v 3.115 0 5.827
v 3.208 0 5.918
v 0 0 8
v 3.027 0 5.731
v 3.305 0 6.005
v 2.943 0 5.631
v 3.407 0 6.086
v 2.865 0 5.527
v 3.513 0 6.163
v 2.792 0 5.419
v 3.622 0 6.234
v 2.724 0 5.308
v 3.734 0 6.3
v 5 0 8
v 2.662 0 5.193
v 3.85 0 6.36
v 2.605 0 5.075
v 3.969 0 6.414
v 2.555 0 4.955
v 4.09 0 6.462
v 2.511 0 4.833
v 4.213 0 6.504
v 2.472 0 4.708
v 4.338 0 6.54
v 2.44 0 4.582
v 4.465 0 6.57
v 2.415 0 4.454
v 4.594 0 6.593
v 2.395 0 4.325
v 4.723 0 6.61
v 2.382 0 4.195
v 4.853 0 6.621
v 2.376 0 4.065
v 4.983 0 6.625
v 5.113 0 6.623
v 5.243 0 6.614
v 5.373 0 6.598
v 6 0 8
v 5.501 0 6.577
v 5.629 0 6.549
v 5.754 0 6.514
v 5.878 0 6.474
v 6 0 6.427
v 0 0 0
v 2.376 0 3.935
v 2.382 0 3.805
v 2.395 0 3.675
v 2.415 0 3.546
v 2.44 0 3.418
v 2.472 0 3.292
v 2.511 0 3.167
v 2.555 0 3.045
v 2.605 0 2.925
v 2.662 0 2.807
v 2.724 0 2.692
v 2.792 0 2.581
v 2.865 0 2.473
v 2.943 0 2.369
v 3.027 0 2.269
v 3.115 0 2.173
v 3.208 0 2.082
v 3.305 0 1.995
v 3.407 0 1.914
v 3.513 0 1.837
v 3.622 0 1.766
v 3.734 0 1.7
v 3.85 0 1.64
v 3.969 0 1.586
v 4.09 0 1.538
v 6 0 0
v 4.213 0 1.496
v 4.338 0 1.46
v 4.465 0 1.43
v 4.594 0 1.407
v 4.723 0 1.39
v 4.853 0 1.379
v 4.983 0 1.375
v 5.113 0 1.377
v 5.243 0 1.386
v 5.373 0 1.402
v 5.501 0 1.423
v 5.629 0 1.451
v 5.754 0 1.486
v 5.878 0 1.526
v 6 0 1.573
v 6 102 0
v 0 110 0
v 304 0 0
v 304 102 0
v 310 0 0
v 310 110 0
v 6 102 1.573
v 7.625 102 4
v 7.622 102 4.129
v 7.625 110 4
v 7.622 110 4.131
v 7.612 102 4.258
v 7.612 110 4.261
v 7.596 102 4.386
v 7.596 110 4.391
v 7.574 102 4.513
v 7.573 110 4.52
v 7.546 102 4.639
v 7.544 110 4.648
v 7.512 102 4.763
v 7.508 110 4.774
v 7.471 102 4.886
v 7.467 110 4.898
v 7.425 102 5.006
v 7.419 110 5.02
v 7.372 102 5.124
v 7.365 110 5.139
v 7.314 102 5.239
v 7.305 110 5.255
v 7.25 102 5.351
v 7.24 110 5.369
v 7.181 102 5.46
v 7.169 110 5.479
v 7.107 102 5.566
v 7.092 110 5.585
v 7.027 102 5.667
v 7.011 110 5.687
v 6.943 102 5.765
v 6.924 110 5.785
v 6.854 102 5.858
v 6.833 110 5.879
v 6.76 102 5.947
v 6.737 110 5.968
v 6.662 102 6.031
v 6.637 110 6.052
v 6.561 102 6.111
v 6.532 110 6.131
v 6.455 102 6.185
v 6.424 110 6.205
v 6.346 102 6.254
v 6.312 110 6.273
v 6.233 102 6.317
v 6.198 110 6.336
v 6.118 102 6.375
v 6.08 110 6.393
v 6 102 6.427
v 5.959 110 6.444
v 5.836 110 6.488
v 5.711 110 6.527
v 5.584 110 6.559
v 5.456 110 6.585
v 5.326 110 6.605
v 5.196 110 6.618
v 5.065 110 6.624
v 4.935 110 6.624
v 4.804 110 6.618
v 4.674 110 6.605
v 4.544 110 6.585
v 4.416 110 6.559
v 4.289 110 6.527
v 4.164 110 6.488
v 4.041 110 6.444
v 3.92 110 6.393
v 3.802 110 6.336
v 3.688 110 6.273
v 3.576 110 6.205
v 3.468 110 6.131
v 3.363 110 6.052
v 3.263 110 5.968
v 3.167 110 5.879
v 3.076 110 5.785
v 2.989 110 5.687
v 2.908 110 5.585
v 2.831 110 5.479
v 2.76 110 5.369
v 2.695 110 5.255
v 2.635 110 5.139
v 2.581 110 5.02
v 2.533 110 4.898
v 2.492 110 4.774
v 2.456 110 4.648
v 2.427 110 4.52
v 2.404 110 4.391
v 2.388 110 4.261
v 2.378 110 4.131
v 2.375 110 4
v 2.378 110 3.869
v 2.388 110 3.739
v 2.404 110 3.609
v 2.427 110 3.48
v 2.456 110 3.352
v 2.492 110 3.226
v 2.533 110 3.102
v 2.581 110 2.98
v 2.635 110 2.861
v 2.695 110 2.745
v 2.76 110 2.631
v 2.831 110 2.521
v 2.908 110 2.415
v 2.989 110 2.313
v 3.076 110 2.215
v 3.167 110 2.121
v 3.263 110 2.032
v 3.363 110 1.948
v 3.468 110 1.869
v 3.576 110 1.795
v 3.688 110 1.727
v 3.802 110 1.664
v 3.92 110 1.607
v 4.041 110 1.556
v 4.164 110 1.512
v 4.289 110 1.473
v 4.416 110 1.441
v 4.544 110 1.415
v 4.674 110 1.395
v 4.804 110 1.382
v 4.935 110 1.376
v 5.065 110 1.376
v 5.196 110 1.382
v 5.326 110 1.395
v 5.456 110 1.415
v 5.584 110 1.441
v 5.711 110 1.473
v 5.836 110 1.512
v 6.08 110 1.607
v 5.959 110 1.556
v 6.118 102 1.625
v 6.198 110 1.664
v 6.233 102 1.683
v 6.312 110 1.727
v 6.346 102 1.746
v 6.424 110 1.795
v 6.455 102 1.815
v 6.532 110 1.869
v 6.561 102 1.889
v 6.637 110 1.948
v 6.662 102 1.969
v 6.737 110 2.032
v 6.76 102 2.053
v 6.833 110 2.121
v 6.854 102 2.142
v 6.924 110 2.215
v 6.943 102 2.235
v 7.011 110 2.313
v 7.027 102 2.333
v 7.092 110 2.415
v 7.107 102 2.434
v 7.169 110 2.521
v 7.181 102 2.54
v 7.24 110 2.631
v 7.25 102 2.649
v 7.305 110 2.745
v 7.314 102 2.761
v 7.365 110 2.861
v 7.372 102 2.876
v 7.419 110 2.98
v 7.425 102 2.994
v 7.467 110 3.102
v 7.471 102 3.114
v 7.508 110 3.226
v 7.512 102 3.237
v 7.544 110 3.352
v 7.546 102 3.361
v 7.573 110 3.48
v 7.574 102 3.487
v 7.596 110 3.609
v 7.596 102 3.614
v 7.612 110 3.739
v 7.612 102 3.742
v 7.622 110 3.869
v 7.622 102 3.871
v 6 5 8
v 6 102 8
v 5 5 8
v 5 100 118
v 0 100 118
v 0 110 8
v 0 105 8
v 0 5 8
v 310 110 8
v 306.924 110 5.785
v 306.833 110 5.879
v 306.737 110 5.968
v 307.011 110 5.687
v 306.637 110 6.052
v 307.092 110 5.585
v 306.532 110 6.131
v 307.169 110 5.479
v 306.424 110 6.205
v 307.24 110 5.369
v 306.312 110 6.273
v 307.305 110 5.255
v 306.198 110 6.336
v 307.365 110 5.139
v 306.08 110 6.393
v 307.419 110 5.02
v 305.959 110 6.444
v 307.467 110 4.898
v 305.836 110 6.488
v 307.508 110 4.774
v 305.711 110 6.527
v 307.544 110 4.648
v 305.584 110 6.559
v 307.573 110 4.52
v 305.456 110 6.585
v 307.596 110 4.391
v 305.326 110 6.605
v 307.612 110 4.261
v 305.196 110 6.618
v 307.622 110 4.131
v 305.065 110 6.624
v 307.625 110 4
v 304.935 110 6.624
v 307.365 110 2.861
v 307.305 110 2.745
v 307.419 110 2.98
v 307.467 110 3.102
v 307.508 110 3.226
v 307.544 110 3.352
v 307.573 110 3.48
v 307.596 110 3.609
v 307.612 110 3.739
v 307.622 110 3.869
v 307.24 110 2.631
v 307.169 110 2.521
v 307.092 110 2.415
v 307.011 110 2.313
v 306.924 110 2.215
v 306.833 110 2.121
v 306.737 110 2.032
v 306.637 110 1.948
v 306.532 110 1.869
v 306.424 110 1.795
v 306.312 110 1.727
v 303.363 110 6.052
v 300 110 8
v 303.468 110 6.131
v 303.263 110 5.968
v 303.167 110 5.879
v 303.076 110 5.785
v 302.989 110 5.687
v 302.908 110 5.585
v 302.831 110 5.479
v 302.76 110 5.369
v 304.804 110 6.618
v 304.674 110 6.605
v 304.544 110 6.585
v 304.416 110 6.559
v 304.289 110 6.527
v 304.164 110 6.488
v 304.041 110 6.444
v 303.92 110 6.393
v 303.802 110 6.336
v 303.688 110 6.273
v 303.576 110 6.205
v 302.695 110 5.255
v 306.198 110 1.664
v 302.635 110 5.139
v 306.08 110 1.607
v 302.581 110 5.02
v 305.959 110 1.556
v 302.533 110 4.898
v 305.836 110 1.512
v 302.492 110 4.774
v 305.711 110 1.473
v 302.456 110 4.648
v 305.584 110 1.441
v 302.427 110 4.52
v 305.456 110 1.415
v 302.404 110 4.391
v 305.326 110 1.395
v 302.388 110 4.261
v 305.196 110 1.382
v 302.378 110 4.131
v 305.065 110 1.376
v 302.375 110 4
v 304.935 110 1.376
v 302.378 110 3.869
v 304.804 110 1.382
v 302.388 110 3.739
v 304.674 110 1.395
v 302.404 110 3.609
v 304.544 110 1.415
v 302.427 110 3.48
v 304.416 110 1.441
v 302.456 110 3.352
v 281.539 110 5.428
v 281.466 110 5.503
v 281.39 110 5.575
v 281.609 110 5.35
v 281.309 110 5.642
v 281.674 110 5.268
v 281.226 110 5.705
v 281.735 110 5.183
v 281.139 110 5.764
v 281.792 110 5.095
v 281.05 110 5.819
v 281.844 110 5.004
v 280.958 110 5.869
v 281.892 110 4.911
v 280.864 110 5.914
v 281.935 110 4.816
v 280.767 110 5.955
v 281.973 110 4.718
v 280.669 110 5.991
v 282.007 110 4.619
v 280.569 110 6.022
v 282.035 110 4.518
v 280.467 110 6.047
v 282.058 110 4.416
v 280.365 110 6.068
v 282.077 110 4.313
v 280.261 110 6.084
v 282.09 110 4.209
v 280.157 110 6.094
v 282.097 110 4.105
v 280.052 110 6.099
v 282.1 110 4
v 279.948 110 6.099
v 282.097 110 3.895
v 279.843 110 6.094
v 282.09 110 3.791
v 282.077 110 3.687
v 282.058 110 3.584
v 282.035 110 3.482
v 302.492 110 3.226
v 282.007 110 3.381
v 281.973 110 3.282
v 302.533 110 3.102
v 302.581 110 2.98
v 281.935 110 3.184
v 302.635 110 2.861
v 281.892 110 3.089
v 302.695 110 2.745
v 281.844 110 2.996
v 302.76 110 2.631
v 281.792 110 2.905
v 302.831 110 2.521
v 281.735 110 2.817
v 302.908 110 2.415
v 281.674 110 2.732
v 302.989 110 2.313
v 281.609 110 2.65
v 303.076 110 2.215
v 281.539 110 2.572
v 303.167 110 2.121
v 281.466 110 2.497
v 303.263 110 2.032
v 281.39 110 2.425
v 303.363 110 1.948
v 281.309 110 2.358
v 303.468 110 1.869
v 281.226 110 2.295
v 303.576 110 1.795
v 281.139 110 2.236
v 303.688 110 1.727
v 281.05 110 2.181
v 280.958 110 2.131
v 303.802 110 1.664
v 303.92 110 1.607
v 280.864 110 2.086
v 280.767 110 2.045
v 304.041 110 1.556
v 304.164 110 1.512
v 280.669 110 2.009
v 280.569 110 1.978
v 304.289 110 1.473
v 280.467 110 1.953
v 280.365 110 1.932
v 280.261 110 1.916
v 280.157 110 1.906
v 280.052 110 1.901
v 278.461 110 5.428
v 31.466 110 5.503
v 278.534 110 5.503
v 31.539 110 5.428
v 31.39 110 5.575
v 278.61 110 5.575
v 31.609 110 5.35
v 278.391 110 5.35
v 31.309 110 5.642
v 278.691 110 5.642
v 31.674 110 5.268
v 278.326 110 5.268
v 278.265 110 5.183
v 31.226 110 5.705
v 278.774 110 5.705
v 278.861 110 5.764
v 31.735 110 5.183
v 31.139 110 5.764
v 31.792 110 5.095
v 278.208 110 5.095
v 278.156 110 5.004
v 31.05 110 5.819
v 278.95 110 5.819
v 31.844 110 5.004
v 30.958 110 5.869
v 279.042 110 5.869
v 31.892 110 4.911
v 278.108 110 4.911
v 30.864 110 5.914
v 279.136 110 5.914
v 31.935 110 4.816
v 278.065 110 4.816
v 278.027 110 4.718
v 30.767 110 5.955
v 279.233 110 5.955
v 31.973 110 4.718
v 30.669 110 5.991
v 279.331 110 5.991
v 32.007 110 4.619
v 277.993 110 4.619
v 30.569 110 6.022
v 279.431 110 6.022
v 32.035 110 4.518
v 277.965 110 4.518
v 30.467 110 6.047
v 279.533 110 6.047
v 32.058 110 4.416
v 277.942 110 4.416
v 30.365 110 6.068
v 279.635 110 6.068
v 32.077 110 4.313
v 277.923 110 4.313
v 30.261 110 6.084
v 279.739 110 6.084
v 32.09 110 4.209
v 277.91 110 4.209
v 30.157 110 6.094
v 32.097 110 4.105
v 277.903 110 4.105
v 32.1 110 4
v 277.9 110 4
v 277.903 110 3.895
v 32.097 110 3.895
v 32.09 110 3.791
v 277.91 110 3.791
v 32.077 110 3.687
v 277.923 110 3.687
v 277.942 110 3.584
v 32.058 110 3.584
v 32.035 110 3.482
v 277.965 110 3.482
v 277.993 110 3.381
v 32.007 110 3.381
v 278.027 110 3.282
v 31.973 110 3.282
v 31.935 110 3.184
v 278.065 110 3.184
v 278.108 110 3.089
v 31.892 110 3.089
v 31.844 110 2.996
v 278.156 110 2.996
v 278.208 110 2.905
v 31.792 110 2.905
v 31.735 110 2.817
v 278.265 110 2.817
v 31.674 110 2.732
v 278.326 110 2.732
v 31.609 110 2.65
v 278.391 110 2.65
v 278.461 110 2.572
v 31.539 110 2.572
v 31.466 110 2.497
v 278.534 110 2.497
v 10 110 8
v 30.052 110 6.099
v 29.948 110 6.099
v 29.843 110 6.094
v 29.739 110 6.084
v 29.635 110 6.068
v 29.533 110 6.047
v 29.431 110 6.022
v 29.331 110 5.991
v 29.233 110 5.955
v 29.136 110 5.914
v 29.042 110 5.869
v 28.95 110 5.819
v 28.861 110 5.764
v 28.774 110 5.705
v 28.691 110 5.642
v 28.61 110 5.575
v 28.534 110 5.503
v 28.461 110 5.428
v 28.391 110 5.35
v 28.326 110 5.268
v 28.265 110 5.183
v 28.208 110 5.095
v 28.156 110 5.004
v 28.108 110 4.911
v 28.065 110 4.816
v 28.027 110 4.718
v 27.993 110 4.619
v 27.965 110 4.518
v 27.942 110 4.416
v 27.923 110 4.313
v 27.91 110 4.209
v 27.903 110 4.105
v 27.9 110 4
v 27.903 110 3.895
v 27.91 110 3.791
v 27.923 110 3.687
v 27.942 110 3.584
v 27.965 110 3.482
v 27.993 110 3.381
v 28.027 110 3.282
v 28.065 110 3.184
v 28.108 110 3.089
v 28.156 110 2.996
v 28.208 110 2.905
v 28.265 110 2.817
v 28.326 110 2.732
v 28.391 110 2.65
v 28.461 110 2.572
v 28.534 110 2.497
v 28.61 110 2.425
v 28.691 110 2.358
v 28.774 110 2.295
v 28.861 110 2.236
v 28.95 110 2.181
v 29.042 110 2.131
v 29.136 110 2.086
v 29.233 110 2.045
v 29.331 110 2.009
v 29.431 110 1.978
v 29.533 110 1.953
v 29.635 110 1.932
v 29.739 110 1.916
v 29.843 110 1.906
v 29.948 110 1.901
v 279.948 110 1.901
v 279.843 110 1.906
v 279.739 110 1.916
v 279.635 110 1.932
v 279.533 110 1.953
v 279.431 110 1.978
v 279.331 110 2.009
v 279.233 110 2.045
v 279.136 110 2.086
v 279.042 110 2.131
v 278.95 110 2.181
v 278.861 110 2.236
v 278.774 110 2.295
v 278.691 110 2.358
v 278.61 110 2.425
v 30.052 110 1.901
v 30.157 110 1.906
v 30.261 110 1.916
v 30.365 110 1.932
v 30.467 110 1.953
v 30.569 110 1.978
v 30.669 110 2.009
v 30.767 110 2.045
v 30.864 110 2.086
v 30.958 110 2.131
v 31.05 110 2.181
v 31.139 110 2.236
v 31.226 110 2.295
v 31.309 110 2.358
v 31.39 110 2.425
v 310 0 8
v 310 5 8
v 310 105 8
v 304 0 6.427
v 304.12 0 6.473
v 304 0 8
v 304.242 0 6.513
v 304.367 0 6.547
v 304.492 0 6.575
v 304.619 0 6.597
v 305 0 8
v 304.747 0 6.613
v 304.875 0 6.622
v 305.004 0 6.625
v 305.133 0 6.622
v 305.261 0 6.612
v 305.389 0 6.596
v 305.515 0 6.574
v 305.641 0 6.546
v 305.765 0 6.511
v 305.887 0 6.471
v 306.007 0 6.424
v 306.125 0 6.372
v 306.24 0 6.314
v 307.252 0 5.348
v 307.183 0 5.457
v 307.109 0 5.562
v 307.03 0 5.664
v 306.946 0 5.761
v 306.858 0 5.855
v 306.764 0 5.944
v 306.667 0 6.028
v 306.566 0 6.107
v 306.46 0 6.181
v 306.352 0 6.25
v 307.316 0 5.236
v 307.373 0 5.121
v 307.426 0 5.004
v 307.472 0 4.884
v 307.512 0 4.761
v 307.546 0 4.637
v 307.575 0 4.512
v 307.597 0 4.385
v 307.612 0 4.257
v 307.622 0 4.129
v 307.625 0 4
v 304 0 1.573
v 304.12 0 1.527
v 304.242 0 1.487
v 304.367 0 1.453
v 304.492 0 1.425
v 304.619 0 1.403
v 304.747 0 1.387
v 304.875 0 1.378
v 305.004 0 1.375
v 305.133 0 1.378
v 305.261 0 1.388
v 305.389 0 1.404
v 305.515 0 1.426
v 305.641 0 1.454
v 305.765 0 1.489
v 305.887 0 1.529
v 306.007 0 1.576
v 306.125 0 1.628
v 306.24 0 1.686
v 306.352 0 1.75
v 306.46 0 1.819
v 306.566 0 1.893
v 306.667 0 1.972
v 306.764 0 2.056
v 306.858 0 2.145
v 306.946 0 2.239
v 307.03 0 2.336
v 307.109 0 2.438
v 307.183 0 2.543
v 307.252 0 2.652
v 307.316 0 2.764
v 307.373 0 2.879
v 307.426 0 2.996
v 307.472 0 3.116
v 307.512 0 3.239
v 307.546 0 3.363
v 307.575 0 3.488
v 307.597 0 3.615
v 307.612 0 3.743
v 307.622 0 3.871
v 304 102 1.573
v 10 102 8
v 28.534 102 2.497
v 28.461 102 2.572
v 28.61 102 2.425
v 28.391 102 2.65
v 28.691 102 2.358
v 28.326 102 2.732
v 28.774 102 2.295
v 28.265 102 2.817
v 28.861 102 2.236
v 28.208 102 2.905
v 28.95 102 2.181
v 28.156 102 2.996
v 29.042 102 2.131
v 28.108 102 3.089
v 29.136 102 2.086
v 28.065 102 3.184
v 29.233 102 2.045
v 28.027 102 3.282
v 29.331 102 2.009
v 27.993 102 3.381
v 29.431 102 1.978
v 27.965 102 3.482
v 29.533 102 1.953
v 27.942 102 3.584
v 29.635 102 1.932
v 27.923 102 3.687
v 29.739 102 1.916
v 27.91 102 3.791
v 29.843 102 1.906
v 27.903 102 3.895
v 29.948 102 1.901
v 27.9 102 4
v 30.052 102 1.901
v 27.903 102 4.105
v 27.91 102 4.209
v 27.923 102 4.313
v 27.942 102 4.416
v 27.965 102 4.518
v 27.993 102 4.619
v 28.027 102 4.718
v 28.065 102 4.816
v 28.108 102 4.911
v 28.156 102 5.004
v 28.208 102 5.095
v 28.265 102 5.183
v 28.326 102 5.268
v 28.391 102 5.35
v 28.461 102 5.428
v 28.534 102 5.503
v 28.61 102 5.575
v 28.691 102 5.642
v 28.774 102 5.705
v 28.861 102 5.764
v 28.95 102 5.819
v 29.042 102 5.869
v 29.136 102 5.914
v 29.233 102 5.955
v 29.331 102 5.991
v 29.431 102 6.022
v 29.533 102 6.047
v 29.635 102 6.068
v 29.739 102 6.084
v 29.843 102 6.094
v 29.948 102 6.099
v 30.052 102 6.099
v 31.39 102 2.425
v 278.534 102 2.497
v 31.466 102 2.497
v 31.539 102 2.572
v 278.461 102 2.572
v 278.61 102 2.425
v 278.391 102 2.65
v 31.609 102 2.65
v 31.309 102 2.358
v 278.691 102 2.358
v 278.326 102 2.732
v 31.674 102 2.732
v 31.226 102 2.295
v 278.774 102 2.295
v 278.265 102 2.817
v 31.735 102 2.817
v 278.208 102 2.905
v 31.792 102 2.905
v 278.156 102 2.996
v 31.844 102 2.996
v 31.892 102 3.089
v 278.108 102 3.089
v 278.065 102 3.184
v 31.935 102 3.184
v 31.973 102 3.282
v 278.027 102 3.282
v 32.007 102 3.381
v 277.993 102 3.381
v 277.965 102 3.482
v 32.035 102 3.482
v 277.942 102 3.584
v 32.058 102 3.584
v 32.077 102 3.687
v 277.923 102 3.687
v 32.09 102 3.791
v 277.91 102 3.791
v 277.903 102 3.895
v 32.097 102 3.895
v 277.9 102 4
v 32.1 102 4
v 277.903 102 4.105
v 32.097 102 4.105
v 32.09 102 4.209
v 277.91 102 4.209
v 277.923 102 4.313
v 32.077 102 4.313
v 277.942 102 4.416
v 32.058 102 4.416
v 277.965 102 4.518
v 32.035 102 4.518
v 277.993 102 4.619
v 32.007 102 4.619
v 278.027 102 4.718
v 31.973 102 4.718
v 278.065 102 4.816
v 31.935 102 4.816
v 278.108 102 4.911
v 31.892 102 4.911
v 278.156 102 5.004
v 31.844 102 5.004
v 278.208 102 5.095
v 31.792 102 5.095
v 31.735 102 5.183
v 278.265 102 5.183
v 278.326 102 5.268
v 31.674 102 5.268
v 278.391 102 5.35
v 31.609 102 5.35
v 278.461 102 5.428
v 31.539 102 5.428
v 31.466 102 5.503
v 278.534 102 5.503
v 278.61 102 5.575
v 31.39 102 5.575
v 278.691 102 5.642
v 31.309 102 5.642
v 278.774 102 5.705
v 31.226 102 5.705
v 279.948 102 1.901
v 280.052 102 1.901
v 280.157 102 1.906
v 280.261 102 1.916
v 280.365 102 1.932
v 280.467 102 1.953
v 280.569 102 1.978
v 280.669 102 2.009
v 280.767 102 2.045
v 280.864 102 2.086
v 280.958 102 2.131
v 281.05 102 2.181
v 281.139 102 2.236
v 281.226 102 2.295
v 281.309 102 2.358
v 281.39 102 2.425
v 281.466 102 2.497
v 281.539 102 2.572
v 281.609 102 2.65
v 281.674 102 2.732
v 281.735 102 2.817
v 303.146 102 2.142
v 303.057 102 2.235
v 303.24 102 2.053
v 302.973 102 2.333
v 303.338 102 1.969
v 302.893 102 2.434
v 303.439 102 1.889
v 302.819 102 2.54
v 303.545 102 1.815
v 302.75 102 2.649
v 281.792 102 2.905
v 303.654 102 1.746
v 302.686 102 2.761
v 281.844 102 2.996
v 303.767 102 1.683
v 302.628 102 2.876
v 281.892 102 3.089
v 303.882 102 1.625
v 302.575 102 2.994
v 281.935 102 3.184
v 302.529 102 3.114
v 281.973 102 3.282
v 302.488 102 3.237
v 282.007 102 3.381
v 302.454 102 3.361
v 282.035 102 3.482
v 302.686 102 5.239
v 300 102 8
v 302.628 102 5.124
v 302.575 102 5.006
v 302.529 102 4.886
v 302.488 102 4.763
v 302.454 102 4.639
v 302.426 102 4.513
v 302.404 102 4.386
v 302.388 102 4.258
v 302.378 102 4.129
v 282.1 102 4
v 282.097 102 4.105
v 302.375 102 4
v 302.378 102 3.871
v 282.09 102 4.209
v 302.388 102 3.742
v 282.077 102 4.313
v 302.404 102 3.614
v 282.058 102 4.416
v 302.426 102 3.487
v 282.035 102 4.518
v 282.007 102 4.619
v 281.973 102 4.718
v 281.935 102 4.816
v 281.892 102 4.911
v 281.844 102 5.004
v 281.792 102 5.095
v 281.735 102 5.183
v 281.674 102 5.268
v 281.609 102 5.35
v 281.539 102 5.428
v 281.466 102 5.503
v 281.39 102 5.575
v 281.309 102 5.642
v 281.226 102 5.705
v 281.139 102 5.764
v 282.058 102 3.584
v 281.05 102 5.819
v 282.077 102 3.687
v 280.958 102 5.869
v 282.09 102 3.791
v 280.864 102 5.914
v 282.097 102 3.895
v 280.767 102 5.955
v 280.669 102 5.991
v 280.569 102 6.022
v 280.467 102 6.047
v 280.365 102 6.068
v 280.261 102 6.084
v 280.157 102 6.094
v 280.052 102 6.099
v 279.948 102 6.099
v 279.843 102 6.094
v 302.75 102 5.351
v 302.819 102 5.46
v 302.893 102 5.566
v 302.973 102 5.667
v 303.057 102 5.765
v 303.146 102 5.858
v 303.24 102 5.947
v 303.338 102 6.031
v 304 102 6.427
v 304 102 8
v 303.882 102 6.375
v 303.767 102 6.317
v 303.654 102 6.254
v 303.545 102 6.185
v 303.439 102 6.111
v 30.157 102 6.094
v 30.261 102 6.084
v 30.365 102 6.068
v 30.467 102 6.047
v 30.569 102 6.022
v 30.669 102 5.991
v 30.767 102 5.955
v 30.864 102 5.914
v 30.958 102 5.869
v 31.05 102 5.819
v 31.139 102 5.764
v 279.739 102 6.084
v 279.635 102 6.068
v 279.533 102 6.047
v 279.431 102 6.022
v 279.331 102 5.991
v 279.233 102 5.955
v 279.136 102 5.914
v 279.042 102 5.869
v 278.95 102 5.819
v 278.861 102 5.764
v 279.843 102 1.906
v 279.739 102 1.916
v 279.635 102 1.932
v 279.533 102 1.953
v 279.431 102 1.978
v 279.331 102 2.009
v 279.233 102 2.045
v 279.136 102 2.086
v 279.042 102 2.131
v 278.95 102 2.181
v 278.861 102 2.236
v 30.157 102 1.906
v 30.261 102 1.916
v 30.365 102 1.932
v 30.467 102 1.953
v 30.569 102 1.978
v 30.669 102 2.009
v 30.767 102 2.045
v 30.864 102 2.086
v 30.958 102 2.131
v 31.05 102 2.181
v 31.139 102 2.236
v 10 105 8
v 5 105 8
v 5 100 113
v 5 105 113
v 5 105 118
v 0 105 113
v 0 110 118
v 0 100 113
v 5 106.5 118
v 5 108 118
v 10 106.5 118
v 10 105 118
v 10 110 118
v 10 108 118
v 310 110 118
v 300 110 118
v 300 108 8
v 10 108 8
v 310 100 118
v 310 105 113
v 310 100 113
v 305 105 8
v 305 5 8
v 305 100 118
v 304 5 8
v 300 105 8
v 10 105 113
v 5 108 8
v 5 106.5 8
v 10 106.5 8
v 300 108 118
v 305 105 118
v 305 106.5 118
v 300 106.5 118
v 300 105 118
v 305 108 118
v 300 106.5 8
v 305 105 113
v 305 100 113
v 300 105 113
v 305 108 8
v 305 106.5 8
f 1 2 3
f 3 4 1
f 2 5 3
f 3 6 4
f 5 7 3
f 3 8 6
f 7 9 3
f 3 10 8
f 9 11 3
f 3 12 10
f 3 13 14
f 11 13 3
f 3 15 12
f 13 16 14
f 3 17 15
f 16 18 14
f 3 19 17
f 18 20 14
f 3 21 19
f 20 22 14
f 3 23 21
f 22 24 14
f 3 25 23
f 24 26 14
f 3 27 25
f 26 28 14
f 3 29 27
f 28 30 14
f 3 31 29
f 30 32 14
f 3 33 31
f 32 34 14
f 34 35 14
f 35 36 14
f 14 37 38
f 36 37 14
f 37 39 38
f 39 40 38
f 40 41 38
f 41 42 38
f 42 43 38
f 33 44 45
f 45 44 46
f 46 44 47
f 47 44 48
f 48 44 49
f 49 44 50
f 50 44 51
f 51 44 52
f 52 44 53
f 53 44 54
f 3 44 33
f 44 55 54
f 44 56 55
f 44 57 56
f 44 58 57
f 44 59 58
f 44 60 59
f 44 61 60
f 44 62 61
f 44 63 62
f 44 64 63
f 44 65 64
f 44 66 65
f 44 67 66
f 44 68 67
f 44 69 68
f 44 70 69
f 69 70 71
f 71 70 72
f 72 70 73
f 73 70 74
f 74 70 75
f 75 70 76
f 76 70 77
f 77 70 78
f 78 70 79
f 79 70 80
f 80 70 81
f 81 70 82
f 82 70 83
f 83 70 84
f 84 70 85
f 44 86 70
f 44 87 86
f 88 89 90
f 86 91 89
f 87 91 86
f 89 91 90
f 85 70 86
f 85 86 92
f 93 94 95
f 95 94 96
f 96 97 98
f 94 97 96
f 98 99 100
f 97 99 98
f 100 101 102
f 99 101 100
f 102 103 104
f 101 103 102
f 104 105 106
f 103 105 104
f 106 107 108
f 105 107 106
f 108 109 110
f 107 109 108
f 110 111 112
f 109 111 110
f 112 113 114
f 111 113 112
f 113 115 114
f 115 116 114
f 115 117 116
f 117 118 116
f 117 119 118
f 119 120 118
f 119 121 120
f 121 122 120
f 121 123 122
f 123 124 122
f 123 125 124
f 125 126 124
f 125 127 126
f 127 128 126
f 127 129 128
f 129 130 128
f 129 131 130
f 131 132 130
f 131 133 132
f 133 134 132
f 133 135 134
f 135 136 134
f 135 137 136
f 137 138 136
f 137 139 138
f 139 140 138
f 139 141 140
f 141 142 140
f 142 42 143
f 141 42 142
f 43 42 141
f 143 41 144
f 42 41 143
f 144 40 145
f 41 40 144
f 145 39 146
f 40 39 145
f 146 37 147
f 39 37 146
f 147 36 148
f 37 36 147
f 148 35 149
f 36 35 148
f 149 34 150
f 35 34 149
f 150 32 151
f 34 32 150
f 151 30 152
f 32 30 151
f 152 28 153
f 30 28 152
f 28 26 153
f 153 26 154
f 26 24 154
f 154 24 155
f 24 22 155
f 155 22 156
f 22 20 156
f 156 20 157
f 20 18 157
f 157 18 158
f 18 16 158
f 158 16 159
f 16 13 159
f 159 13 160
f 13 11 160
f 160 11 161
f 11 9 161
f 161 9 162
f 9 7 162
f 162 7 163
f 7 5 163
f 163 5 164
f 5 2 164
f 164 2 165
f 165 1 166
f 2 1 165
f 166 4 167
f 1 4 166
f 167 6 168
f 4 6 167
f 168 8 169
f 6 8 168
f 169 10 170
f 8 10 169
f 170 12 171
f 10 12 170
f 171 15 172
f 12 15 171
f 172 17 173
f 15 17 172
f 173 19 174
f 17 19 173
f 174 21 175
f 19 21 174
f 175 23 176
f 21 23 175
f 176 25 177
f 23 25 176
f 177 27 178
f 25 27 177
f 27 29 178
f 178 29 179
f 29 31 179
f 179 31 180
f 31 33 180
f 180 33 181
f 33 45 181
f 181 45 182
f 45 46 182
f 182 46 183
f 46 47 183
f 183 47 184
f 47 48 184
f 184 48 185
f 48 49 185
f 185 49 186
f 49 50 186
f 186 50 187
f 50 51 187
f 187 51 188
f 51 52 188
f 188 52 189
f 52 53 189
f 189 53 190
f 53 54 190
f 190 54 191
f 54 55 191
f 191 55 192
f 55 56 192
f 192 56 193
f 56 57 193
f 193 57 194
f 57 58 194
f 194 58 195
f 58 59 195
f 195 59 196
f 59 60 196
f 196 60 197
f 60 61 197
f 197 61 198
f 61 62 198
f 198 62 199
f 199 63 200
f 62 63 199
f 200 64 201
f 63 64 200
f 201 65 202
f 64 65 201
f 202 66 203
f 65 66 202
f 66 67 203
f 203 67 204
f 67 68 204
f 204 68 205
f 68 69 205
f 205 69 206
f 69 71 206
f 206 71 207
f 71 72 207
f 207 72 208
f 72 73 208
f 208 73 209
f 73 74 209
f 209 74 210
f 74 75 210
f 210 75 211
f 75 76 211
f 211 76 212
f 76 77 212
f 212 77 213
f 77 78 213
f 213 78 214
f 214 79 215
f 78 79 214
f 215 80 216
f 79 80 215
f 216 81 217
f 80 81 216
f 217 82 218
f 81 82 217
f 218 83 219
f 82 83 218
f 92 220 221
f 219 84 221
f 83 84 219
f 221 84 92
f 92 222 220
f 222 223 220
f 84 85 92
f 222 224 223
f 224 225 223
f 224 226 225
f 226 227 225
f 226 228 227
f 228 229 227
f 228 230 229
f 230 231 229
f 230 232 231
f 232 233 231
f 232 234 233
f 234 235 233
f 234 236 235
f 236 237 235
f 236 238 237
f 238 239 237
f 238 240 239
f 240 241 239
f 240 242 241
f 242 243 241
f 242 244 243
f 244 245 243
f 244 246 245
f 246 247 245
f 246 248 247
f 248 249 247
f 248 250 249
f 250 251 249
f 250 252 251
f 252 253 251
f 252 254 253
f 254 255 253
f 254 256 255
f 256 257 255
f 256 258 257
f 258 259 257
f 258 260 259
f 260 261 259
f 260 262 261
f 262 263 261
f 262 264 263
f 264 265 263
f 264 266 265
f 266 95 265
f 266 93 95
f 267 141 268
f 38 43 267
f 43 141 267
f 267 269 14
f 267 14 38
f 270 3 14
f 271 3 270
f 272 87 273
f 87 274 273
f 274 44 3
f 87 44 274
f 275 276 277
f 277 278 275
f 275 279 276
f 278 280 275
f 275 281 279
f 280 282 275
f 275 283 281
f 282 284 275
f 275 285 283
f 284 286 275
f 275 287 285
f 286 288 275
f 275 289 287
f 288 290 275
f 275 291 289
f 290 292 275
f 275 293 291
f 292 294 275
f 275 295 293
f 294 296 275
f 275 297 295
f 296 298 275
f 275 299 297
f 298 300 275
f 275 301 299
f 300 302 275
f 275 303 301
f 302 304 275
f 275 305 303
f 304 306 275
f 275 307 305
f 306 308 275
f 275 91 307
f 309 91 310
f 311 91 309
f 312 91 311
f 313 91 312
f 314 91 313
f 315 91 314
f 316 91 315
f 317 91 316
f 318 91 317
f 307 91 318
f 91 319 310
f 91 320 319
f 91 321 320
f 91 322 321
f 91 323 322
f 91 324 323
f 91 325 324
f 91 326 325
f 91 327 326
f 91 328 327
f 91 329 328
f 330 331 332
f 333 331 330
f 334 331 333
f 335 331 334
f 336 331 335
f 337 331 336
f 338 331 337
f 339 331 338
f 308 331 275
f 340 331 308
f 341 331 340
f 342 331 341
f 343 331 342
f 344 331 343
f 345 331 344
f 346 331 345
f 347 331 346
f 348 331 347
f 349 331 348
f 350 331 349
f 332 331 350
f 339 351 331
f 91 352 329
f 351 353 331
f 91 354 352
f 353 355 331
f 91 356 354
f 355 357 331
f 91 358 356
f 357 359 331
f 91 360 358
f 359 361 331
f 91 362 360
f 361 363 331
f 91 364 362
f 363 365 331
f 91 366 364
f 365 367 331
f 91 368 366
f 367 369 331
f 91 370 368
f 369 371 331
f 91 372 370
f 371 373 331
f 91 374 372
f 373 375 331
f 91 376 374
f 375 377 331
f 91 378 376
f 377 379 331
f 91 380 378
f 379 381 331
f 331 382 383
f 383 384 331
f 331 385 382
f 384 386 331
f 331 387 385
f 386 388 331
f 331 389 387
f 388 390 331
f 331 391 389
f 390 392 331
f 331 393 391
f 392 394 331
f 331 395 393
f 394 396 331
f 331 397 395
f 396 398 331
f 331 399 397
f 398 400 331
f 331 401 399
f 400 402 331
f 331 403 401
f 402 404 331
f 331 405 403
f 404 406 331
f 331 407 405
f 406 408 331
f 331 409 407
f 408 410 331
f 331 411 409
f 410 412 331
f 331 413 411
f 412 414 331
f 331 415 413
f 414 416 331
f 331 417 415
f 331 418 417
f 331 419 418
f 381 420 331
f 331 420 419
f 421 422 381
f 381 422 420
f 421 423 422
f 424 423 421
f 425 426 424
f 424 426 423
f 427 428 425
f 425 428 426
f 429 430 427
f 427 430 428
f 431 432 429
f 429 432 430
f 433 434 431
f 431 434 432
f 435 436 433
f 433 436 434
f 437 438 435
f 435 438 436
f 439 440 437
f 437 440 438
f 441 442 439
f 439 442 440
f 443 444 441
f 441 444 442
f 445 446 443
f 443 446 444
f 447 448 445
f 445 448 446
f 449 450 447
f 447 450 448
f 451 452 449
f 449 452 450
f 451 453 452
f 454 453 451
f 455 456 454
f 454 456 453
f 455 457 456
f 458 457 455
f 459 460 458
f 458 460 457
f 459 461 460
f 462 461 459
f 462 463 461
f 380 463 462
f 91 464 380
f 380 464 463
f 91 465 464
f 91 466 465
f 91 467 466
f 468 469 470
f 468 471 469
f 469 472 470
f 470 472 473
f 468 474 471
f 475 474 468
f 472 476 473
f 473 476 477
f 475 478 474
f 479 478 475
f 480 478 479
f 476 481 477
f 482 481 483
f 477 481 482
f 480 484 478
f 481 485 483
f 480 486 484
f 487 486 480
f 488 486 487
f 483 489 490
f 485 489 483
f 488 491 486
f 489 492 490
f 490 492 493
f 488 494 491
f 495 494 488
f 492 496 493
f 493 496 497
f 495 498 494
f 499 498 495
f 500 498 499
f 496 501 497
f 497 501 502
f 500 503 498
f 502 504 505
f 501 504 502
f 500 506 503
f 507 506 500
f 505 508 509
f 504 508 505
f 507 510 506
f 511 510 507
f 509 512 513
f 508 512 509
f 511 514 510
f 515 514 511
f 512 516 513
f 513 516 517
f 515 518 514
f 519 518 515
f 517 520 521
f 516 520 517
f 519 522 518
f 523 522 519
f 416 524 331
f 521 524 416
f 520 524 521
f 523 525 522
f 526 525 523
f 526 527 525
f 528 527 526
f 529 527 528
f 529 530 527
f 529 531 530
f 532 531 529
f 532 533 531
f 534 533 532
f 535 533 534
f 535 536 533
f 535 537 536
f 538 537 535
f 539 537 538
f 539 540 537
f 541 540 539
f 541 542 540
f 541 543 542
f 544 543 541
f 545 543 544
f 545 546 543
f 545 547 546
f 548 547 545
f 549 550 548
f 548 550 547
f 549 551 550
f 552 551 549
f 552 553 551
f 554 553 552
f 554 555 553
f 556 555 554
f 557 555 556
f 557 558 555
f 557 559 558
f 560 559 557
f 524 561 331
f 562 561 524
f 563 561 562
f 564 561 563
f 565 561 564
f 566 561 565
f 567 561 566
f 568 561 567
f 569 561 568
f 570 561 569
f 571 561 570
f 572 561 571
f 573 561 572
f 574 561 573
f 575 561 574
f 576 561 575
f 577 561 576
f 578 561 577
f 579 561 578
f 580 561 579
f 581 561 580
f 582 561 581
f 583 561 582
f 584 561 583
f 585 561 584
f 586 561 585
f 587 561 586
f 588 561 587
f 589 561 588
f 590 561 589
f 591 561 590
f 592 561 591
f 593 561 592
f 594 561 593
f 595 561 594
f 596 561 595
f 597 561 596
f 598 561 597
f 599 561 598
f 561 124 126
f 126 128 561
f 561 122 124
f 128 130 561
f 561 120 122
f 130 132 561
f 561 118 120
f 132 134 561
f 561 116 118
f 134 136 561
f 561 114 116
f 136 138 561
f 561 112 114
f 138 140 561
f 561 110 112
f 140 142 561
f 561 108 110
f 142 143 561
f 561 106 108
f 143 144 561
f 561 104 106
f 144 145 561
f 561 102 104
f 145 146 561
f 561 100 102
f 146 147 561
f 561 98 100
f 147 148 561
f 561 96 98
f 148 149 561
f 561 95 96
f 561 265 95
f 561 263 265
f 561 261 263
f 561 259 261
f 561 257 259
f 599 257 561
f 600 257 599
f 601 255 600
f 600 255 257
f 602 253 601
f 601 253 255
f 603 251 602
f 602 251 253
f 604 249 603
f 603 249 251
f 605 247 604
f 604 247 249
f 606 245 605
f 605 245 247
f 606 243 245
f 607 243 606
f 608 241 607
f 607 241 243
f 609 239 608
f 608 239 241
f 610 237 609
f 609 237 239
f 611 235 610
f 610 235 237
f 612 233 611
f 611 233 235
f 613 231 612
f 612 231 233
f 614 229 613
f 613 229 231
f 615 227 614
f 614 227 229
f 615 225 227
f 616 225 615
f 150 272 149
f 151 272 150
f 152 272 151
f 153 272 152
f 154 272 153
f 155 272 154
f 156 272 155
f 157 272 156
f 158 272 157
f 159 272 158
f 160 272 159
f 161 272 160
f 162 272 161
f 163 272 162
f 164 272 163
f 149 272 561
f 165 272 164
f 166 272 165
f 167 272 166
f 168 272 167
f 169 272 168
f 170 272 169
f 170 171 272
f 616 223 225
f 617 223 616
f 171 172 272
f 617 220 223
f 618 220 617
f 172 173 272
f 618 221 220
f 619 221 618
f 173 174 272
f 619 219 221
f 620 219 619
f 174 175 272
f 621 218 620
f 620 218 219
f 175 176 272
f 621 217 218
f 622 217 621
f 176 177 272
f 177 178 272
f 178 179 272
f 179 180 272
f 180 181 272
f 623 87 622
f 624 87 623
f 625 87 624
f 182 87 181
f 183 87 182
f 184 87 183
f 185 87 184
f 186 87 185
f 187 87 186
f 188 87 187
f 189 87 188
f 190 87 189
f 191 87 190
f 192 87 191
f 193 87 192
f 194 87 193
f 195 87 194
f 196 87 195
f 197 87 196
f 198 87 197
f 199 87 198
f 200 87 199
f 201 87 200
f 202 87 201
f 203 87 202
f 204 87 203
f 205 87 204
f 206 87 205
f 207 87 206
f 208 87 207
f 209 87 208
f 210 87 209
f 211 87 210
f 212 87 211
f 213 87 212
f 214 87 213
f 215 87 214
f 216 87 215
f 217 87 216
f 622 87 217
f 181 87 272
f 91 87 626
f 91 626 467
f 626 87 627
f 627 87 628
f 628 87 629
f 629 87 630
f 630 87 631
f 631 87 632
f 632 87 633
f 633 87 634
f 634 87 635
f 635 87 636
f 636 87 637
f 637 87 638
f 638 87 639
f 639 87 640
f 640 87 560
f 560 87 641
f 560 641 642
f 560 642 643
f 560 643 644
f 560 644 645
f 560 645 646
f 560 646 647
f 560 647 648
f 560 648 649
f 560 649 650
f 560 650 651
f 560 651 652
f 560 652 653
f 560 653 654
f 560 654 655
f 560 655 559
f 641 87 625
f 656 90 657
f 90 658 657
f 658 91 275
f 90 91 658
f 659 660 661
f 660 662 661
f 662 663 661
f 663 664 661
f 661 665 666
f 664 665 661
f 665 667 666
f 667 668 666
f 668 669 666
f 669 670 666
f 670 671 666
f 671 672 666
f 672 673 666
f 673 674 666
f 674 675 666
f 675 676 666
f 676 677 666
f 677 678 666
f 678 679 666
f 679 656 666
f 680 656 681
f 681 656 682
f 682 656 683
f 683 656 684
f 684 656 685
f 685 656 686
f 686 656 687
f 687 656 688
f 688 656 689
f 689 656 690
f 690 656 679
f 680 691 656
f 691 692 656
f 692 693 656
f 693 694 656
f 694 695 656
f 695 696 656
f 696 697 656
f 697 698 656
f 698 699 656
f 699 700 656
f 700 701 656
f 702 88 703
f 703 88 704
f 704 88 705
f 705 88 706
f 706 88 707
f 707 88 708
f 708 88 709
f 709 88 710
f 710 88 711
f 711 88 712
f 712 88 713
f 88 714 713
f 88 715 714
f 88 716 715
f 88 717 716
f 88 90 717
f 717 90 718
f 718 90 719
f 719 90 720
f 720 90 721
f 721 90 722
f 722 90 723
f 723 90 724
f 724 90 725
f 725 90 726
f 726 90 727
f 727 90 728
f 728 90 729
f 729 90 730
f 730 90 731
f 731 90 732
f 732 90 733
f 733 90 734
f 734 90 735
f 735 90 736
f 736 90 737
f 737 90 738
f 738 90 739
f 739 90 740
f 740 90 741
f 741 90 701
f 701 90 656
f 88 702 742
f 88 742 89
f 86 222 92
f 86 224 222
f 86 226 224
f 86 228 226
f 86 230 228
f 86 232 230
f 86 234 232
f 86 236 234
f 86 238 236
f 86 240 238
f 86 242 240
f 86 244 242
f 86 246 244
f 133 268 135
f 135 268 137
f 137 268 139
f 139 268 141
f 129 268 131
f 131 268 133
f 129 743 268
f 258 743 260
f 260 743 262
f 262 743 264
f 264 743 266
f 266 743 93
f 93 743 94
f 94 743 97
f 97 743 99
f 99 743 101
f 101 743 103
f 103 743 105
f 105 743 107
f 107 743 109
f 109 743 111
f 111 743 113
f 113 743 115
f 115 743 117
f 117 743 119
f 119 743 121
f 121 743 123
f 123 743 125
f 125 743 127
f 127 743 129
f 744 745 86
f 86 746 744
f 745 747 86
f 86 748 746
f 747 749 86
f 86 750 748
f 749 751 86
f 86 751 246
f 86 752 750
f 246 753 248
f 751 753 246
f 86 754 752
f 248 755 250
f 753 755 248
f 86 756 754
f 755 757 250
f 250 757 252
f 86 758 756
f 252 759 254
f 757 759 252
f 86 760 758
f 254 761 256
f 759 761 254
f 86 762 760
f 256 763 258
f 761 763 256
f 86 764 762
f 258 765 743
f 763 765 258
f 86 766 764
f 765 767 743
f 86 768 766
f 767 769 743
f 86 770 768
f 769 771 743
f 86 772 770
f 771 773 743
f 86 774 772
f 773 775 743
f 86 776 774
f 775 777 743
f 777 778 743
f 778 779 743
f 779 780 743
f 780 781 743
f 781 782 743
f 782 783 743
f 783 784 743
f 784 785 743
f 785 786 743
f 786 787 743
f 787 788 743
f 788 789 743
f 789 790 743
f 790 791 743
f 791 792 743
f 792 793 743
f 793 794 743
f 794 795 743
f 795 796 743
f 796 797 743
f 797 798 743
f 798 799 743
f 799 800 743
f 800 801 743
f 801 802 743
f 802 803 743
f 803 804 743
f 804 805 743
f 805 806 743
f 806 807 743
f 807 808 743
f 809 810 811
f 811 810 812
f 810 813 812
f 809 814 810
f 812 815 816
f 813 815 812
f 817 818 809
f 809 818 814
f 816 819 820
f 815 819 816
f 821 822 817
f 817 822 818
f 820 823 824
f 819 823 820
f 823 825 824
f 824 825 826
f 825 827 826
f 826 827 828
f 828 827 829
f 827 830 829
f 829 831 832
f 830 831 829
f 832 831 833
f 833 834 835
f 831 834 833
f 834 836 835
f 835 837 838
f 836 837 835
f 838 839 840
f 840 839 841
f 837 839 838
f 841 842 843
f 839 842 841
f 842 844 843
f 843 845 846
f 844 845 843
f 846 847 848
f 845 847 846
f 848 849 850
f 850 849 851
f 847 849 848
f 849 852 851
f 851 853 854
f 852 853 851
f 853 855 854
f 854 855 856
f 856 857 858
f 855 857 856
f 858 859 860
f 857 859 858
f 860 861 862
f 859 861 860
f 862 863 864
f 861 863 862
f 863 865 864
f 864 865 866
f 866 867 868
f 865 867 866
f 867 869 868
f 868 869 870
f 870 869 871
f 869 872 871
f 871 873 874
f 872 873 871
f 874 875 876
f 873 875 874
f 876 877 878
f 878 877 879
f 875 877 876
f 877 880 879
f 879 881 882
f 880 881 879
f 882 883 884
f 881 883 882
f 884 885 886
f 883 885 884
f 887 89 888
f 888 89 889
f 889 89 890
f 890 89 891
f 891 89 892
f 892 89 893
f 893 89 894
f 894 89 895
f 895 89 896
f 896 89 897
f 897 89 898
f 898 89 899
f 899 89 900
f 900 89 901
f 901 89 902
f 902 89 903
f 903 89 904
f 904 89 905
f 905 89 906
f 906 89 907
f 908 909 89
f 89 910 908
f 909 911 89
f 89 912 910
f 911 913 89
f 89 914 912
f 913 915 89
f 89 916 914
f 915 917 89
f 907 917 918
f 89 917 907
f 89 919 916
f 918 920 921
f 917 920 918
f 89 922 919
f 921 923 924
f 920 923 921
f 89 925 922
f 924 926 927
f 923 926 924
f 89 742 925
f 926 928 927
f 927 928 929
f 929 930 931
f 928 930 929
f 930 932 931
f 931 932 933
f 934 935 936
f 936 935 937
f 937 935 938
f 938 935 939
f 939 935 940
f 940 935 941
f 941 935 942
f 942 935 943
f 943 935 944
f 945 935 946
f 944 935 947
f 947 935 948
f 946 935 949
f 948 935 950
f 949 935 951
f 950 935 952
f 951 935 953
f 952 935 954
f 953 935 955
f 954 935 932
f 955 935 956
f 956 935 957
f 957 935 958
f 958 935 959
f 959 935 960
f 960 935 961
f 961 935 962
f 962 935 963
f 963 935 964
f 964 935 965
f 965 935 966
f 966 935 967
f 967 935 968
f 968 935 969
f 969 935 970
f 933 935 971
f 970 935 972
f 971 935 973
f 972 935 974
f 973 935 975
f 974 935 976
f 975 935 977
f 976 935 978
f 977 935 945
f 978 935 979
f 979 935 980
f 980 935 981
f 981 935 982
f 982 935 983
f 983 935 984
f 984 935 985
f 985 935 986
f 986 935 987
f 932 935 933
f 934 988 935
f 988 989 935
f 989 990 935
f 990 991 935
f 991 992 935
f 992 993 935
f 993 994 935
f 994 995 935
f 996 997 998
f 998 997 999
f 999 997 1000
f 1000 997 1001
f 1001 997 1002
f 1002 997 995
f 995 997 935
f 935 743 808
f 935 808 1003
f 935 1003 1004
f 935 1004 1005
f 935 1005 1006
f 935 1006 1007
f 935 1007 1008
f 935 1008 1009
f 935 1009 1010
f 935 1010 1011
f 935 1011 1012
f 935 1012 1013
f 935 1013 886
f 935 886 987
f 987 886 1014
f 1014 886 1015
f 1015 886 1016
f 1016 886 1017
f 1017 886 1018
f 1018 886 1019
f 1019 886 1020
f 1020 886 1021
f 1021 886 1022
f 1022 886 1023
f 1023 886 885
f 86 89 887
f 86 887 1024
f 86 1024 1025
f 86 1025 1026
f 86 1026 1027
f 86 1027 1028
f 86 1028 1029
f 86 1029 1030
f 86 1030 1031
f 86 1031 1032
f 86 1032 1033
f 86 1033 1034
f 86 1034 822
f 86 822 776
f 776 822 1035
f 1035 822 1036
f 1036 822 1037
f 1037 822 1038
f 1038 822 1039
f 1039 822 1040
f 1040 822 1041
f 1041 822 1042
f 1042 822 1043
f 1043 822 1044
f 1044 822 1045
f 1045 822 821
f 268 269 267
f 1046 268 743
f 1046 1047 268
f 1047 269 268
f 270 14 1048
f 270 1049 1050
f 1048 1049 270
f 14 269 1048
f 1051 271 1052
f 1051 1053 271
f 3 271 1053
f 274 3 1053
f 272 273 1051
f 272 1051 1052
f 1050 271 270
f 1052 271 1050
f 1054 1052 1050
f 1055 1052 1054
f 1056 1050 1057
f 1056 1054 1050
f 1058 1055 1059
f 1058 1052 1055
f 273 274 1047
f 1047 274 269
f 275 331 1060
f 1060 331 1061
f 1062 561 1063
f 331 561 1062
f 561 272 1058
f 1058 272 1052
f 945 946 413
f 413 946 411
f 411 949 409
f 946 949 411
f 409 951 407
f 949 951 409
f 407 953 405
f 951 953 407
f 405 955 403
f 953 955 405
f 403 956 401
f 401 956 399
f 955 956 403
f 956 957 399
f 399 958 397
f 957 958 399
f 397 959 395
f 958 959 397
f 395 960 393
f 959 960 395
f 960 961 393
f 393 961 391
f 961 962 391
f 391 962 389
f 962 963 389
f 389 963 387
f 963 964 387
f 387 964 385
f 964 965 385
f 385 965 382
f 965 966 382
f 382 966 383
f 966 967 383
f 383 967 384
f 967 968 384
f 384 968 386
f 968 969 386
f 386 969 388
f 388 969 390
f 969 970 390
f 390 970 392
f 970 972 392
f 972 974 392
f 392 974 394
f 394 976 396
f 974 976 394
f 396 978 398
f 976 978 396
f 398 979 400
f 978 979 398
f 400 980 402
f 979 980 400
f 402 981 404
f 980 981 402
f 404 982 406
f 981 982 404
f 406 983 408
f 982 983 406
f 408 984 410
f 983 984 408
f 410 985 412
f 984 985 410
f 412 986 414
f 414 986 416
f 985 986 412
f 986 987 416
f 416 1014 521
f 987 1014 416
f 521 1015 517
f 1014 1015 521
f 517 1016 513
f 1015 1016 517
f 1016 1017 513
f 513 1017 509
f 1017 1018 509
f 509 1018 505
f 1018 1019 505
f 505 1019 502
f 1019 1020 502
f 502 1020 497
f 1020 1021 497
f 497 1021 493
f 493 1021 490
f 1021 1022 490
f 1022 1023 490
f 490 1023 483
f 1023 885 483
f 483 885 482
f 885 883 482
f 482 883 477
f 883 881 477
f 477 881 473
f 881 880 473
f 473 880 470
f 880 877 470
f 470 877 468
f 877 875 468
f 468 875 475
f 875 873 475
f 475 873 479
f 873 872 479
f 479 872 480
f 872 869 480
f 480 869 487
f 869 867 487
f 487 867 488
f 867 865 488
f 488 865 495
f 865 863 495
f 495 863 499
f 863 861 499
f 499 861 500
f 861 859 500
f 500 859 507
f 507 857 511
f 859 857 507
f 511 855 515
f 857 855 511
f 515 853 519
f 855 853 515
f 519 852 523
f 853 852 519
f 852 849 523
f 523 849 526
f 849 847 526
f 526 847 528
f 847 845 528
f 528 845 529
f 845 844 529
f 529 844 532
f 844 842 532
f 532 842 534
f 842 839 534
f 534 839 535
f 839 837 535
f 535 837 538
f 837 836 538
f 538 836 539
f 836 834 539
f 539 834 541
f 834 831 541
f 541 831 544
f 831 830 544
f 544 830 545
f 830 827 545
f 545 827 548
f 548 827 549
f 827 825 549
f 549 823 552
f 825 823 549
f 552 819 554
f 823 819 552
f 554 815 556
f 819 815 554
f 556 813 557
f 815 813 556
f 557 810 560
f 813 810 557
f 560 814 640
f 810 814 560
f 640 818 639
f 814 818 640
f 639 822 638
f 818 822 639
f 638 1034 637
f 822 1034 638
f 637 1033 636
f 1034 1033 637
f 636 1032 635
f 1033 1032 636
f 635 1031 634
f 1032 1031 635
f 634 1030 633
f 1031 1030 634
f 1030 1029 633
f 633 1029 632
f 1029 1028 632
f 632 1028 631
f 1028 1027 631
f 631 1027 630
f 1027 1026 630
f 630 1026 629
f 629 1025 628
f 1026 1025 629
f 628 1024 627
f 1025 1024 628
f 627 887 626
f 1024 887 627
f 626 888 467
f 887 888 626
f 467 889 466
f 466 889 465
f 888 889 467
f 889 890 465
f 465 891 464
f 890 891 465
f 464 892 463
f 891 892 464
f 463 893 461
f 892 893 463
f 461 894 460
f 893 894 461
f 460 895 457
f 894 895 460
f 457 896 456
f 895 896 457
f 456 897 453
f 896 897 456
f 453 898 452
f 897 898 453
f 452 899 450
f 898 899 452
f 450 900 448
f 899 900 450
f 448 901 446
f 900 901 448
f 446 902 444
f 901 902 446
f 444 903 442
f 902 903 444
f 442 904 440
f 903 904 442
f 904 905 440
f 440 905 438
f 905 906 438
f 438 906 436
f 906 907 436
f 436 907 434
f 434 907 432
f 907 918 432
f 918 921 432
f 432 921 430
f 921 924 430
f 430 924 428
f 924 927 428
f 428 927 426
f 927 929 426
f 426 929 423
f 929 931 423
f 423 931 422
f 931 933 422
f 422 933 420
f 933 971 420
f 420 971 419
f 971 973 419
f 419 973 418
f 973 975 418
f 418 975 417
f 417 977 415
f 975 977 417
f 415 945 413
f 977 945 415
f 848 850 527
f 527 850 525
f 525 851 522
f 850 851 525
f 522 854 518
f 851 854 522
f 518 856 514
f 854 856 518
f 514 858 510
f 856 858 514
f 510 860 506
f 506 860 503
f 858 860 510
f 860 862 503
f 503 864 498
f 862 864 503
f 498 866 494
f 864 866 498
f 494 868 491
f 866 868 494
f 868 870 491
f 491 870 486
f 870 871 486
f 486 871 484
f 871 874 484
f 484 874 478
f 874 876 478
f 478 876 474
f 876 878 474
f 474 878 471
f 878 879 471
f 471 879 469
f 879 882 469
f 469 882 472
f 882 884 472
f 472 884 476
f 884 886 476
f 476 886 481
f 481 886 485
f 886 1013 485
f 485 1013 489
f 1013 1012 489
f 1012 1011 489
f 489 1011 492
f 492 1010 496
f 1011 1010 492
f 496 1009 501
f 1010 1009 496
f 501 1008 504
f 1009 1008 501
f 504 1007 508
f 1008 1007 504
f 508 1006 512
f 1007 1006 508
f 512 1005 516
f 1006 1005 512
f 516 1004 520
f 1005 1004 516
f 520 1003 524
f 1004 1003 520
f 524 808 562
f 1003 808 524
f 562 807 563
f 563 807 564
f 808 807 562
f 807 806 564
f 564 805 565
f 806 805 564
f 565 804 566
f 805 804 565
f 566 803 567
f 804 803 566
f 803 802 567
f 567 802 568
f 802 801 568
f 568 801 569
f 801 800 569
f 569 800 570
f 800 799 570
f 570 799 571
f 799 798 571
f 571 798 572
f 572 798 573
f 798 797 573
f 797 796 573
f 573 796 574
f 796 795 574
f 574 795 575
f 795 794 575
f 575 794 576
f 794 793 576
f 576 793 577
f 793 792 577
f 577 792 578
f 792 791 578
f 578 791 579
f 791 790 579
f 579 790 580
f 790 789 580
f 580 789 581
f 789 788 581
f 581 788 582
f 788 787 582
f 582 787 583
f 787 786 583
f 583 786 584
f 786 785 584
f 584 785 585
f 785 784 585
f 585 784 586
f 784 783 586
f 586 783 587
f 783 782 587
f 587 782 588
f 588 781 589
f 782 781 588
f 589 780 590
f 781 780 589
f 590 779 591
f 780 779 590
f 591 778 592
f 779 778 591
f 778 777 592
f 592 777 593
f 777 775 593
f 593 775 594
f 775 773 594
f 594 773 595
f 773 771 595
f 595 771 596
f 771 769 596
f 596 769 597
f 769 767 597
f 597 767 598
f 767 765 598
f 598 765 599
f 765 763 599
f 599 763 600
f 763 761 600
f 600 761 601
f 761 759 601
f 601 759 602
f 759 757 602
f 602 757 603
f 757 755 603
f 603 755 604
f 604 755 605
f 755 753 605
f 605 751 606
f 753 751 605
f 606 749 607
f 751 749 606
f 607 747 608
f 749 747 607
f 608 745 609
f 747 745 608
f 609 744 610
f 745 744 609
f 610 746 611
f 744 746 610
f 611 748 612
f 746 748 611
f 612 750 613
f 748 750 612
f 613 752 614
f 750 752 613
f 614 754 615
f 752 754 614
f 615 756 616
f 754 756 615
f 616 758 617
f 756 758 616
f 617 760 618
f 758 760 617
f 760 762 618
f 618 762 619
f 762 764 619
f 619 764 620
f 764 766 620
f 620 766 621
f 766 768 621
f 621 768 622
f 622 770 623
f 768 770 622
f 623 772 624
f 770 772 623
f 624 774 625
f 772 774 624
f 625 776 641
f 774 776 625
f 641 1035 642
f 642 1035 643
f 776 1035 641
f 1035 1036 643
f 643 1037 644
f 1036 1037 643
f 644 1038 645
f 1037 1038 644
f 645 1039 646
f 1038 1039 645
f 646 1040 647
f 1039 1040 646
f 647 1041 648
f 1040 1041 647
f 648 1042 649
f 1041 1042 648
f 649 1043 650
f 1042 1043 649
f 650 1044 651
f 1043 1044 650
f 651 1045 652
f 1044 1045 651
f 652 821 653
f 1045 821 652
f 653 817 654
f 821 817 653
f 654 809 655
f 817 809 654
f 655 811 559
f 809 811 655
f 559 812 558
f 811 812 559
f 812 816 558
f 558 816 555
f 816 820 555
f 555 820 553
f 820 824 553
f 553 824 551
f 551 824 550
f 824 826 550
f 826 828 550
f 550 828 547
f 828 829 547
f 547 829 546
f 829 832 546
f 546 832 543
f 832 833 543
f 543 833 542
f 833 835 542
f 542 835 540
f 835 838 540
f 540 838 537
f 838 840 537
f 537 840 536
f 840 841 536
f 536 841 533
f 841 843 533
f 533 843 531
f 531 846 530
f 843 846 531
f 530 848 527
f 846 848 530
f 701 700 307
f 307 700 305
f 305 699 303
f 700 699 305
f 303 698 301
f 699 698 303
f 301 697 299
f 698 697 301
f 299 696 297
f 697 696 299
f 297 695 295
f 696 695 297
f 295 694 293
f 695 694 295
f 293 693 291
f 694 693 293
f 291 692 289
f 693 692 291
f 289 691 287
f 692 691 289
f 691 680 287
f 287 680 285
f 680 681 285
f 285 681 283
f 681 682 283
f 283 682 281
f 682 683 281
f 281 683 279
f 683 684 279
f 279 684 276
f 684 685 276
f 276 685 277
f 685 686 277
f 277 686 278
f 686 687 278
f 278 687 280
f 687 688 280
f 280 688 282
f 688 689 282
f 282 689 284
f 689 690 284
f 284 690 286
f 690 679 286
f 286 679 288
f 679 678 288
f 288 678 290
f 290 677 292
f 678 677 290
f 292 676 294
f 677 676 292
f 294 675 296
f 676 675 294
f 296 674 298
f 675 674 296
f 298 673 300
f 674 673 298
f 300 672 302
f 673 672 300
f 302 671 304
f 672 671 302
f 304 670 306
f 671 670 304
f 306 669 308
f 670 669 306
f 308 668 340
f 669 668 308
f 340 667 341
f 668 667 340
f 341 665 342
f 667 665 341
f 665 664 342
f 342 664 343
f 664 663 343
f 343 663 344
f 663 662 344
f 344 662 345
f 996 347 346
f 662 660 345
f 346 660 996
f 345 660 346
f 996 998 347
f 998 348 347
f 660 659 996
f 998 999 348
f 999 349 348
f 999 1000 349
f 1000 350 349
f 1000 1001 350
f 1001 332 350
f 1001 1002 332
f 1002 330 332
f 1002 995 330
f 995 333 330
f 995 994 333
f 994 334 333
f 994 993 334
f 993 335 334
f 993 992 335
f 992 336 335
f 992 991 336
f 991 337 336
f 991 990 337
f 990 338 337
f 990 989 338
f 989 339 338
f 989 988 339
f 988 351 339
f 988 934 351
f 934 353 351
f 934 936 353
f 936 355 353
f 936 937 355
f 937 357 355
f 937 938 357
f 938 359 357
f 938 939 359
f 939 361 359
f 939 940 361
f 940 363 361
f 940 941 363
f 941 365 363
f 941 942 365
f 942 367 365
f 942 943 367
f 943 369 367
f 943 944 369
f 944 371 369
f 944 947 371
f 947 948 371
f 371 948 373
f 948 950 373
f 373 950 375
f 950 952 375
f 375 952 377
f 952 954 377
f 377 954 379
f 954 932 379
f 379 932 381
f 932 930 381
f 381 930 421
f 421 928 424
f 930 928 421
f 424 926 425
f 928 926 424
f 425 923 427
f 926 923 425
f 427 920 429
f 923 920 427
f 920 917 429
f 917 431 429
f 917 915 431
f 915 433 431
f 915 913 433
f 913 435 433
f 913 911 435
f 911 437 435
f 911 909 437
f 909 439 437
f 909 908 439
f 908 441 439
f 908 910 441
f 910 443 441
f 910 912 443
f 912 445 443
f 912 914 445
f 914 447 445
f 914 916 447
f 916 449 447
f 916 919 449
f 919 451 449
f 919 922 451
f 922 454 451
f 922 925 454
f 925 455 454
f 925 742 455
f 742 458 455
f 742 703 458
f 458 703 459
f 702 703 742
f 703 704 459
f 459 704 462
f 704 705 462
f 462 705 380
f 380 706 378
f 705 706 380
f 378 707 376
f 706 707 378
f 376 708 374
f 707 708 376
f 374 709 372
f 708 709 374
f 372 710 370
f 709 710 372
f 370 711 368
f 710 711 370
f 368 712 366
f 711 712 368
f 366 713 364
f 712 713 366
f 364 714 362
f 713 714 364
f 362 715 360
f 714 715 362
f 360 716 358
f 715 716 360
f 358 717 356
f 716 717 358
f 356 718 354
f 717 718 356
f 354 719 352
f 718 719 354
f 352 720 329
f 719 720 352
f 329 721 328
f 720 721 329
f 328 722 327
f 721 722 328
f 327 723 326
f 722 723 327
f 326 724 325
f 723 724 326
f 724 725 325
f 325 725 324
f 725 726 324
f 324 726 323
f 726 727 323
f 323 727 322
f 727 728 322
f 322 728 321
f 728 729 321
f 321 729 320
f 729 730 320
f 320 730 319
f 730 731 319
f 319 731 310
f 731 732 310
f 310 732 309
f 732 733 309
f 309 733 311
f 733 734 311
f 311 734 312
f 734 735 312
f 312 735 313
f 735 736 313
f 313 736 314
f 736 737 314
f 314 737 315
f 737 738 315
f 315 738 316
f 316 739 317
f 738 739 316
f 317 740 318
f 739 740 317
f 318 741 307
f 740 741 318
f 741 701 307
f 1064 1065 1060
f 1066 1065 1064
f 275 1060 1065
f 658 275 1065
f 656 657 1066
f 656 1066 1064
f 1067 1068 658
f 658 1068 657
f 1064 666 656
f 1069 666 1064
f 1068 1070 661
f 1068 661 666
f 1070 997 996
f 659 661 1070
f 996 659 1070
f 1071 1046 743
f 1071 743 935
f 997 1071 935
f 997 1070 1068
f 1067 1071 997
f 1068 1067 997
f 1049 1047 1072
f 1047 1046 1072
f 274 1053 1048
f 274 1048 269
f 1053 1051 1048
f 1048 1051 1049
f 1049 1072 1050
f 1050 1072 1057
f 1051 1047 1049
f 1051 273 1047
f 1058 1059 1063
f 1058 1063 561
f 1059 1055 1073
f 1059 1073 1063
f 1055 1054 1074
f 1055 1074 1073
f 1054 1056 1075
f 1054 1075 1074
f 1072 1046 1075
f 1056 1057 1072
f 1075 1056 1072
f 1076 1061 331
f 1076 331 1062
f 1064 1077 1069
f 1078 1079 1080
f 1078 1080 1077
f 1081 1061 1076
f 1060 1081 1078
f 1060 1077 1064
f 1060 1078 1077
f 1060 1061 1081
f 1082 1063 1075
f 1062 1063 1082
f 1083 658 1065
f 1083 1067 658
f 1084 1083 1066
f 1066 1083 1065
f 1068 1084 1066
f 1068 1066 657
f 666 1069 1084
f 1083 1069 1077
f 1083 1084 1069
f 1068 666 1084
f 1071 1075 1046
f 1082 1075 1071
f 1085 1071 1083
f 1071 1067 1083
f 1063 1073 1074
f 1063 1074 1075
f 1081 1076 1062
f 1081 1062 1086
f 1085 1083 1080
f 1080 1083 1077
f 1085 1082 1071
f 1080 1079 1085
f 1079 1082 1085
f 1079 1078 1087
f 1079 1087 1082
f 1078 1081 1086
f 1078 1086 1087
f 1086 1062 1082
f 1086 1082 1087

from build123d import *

# Parameters (mm, degrees)
SKETCH_W        = 310
SKETCH_H        = 110
PAD_DEPTH       = 8
PAD001_DEPTH    = 110
POCKET_DEPTH    = 500
POCKET001_DEPTH = 500
SKETCH006_R     = 2.625
POCKET002_DEPTH = 500
SKETCH007_W     = 298
SKETCH007_H     = 8
POCKET003_DEPTH = 102
SKETCH009_W     = 300
SKETCH009_H     = 1.5
POCKET004_DEPTH = 110
SKETCH010_W     = 290
SKETCH010_H     = 10
POCKET005_DEPTH = 110
SKETCH011_R     = 2.1
POCKET006_DEPTH = 500


with BuildPart() as part:
    # Sketch → Pad (new body)
    with BuildSketch(Plane.XY):
        with Locations((155, 55)):
            Rectangle(SKETCH_W, SKETCH_H)
    extrude(amount=PAD_DEPTH)

    # Sketch001 (on Face6 of Pad) → Pad001 (join)
    with BuildSketch(Plane.XY.offset(8)):
        Polygon((0, 0), (0, 110), (310, 110), (310, 0), (305, 0), (305, 105), (5, 105), (5, 0), align=None)
    extrude(amount=PAD001_DEPTH)

    # Sketch004 (on Face9 of Pad001) → Pocket (cut)
    with BuildSketch(Plane(origin=(0, 0, 0), x_dir=(0, -1, 0), z_dir=(-1, 0, 0))):
        Polygon((-100, 118), (0, 118), (0, 8), align=None)
    extrude(amount=-POCKET_DEPTH, mode=Mode.SUBTRACT)

    # Sketch005 (on Face9 of Pocket) → Pocket001 (cut)
    with BuildSketch(Plane(origin=(0, 0, 0), x_dir=(0, -1, 0), z_dir=(-1, 0, 0))):
        Polygon((-100, 113), (-5, 8), (-105, 8), (-105, 113), align=None)
    extrude(amount=-POCKET001_DEPTH, mode=Mode.SUBTRACT)

    # Sketch006 (on Face1 of Pocket001) → Pocket002 (cut)
    with BuildSketch(Plane.XZ):
        with Locations((5, 4)):
            Circle(SKETCH006_R)
        with Locations((305, 4)):
            Circle(SKETCH006_R)
    extrude(amount=-POCKET002_DEPTH, mode=Mode.SUBTRACT)

    # Sketch007 (on Face1 of Pocket002) → Pocket003 (cut)
    with BuildSketch(Plane.XZ):
        with Locations((155, 4)):
            Rectangle(SKETCH007_W, SKETCH007_H)
    extrude(amount=-POCKET003_DEPTH, mode=Mode.SUBTRACT)

    # Sketch009 (on Face17 of Pocket003) → Pocket004 (cut)
    with BuildSketch(Plane.XY.offset(118)):
        with Locations((155, 107.25)):
            Rectangle(SKETCH009_W, SKETCH009_H)
    extrude(amount=-POCKET004_DEPTH, mode=Mode.SUBTRACT)

    # Sketch010 (on Face17 of Pocket004) → Pocket005 (cut)
    with BuildSketch(Plane.XY.offset(118)):
        with Locations((155, 107)):
            Rectangle(SKETCH010_W, SKETCH010_H)
    extrude(amount=-POCKET005_DEPTH, mode=Mode.SUBTRACT)

    # Sketch011 (on Face13 of Pocket005) → Pocket006 (cut)
    with BuildSketch(Plane.XZ.offset(-102)):
        with Locations((30, 4)):
            Circle(SKETCH011_R)
        with Locations((280, 4)):
            Circle(SKETCH011_R)
    extrude(amount=-POCKET006_DEPTH, mode=Mode.SUBTRACT)


solid = part.part
